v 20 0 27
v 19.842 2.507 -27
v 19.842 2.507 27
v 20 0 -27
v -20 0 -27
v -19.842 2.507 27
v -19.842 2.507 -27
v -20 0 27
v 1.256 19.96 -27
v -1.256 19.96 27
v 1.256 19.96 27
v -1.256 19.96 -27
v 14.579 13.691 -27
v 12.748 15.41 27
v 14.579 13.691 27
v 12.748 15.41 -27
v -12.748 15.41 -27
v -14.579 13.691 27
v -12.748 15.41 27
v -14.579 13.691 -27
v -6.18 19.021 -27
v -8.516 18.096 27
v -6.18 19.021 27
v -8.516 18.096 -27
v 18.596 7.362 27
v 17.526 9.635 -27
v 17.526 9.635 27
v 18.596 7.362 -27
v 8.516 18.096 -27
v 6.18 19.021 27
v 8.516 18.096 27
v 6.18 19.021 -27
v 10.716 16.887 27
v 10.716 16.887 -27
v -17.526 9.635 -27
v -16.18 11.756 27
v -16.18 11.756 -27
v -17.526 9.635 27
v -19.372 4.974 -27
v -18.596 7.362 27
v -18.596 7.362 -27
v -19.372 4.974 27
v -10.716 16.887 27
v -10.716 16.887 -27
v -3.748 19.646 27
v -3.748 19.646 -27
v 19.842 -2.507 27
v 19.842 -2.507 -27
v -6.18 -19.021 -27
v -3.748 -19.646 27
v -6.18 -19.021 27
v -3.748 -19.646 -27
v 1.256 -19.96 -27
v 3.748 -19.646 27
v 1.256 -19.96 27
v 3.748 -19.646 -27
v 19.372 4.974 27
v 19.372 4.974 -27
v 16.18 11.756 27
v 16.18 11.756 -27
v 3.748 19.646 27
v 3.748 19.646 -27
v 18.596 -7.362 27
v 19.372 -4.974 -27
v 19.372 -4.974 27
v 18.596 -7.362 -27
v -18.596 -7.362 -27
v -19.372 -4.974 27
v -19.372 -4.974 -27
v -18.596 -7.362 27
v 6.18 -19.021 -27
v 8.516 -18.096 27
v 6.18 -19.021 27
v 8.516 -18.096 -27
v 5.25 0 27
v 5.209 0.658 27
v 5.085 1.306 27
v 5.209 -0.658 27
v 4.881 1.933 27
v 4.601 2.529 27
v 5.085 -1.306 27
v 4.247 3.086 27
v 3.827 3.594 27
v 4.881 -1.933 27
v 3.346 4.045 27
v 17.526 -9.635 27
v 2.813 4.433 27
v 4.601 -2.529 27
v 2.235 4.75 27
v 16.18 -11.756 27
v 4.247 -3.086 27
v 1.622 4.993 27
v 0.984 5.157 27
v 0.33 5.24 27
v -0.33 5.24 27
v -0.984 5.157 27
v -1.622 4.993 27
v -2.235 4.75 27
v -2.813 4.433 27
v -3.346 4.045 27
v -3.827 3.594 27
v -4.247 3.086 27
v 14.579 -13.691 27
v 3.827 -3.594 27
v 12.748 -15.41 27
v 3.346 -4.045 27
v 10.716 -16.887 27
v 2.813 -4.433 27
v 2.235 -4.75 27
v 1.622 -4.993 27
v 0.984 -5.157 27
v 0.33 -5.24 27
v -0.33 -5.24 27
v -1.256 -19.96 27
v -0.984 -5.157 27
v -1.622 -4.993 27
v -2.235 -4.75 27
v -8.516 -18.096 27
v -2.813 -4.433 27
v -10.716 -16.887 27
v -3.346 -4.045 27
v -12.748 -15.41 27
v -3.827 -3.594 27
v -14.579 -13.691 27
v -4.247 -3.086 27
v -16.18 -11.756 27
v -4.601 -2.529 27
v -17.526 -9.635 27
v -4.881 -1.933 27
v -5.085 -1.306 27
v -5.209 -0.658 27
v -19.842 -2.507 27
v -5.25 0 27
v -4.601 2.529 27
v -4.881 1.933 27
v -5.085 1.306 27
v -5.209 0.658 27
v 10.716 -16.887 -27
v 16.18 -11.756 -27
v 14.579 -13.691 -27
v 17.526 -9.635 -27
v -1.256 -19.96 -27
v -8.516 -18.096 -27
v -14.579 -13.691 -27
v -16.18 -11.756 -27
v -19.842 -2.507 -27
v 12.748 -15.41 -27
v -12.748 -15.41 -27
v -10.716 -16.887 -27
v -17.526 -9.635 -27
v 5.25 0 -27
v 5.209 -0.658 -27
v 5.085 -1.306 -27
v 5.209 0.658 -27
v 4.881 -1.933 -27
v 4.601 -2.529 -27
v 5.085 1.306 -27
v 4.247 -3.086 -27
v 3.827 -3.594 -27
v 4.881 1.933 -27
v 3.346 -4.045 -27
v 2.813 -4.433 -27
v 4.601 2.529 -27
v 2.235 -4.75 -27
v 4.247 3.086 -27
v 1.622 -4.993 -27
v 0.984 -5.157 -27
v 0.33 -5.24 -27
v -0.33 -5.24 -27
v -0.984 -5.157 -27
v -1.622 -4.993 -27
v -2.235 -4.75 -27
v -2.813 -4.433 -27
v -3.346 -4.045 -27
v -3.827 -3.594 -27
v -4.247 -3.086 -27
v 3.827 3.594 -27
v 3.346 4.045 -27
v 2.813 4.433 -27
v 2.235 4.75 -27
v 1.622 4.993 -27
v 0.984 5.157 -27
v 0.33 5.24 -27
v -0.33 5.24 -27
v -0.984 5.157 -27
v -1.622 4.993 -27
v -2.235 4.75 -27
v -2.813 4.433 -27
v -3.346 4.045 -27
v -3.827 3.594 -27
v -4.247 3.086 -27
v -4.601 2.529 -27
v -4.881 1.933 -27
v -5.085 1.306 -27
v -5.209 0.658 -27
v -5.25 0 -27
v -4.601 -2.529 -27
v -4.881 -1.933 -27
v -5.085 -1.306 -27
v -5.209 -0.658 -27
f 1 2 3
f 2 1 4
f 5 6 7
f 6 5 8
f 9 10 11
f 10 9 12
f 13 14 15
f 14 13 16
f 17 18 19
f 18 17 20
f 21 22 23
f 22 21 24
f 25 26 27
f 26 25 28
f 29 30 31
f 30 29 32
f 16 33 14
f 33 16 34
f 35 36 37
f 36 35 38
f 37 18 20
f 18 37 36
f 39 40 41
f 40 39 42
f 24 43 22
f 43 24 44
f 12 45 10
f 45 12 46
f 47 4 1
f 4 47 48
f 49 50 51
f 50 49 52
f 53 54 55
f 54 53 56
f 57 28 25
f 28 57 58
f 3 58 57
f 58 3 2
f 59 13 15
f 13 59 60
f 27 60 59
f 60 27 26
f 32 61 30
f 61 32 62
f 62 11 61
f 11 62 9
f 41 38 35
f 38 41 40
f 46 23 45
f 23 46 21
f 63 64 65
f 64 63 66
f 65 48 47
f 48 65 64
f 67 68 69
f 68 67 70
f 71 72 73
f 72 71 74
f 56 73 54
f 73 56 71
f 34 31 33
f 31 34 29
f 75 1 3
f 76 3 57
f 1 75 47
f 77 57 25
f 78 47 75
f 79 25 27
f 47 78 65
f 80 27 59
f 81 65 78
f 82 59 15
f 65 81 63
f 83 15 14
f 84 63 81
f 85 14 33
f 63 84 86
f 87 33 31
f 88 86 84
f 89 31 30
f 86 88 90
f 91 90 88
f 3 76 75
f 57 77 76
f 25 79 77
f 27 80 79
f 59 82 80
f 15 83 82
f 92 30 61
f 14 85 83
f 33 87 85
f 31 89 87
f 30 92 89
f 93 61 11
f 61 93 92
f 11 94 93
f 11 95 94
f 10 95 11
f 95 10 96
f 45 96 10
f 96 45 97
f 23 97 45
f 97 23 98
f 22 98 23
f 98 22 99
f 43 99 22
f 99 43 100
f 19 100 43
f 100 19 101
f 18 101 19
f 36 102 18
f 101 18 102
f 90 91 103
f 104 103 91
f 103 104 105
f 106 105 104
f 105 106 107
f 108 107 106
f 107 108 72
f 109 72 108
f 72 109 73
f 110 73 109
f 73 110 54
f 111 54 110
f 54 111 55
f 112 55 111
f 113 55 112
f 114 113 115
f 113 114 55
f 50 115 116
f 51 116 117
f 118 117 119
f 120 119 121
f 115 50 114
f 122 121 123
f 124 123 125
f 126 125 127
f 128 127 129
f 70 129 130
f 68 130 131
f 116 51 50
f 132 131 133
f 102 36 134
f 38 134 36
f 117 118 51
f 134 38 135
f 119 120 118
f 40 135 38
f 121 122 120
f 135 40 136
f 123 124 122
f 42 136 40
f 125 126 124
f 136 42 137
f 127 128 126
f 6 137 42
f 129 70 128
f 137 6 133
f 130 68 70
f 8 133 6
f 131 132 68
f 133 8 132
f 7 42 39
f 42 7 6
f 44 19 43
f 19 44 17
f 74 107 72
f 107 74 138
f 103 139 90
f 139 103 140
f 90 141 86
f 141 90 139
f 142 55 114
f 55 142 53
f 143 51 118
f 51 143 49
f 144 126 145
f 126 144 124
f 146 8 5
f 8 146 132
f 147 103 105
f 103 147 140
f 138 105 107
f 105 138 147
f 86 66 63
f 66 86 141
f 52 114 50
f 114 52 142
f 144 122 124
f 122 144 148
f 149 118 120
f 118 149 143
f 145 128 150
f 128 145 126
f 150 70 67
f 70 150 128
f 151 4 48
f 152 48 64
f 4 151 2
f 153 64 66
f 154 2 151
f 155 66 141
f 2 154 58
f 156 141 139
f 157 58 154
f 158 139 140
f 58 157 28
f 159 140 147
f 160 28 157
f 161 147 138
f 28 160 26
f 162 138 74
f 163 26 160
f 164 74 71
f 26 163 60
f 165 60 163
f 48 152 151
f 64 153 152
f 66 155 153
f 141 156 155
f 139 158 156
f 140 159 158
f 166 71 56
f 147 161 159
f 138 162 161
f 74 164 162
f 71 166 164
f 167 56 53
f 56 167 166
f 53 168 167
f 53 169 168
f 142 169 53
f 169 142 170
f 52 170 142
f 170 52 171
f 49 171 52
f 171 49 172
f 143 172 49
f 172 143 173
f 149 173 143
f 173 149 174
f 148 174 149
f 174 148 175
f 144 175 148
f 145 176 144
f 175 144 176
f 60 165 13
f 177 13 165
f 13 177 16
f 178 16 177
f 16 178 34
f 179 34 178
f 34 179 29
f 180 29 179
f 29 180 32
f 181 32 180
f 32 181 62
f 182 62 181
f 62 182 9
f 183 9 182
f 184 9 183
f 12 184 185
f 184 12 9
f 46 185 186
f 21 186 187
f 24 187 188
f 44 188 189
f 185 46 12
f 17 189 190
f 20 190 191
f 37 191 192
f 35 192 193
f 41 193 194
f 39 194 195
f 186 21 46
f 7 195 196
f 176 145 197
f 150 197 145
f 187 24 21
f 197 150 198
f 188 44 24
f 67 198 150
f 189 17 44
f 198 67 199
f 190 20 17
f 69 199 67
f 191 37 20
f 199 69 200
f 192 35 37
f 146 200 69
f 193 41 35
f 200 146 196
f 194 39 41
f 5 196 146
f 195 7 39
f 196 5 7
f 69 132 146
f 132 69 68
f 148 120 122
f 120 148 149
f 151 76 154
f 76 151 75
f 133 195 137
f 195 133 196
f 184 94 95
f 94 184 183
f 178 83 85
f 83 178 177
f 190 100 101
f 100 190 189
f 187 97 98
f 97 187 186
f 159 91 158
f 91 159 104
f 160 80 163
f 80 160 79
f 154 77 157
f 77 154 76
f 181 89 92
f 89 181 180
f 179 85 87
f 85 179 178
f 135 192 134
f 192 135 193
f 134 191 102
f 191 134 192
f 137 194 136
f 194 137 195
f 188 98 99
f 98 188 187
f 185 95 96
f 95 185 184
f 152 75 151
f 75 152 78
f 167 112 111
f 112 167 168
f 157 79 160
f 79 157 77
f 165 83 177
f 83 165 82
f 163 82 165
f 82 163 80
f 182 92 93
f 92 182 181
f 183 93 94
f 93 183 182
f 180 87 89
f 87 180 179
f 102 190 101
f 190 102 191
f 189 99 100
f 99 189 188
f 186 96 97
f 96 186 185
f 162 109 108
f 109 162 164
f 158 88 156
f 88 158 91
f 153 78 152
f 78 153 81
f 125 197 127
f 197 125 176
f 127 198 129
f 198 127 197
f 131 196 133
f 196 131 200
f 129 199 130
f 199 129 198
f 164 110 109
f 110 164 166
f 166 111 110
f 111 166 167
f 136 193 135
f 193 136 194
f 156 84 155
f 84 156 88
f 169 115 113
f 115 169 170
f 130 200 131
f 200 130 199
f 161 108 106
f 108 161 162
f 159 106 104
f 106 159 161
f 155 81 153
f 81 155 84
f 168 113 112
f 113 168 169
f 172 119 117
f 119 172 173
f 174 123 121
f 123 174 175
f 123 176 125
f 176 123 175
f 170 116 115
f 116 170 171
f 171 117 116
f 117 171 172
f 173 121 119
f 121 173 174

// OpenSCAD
$fn = 50;


difference() {
	union() {
		translate(v = [0, 0, -27.0000000000]) {
			cylinder(h = 54, r = 20.0000000000);
		}
	}
	union() {
		translate(v = [0, 0, -100.0000000000]) {
			cylinder(h = 200, r = 5.2500000000);
		}
	}
}
